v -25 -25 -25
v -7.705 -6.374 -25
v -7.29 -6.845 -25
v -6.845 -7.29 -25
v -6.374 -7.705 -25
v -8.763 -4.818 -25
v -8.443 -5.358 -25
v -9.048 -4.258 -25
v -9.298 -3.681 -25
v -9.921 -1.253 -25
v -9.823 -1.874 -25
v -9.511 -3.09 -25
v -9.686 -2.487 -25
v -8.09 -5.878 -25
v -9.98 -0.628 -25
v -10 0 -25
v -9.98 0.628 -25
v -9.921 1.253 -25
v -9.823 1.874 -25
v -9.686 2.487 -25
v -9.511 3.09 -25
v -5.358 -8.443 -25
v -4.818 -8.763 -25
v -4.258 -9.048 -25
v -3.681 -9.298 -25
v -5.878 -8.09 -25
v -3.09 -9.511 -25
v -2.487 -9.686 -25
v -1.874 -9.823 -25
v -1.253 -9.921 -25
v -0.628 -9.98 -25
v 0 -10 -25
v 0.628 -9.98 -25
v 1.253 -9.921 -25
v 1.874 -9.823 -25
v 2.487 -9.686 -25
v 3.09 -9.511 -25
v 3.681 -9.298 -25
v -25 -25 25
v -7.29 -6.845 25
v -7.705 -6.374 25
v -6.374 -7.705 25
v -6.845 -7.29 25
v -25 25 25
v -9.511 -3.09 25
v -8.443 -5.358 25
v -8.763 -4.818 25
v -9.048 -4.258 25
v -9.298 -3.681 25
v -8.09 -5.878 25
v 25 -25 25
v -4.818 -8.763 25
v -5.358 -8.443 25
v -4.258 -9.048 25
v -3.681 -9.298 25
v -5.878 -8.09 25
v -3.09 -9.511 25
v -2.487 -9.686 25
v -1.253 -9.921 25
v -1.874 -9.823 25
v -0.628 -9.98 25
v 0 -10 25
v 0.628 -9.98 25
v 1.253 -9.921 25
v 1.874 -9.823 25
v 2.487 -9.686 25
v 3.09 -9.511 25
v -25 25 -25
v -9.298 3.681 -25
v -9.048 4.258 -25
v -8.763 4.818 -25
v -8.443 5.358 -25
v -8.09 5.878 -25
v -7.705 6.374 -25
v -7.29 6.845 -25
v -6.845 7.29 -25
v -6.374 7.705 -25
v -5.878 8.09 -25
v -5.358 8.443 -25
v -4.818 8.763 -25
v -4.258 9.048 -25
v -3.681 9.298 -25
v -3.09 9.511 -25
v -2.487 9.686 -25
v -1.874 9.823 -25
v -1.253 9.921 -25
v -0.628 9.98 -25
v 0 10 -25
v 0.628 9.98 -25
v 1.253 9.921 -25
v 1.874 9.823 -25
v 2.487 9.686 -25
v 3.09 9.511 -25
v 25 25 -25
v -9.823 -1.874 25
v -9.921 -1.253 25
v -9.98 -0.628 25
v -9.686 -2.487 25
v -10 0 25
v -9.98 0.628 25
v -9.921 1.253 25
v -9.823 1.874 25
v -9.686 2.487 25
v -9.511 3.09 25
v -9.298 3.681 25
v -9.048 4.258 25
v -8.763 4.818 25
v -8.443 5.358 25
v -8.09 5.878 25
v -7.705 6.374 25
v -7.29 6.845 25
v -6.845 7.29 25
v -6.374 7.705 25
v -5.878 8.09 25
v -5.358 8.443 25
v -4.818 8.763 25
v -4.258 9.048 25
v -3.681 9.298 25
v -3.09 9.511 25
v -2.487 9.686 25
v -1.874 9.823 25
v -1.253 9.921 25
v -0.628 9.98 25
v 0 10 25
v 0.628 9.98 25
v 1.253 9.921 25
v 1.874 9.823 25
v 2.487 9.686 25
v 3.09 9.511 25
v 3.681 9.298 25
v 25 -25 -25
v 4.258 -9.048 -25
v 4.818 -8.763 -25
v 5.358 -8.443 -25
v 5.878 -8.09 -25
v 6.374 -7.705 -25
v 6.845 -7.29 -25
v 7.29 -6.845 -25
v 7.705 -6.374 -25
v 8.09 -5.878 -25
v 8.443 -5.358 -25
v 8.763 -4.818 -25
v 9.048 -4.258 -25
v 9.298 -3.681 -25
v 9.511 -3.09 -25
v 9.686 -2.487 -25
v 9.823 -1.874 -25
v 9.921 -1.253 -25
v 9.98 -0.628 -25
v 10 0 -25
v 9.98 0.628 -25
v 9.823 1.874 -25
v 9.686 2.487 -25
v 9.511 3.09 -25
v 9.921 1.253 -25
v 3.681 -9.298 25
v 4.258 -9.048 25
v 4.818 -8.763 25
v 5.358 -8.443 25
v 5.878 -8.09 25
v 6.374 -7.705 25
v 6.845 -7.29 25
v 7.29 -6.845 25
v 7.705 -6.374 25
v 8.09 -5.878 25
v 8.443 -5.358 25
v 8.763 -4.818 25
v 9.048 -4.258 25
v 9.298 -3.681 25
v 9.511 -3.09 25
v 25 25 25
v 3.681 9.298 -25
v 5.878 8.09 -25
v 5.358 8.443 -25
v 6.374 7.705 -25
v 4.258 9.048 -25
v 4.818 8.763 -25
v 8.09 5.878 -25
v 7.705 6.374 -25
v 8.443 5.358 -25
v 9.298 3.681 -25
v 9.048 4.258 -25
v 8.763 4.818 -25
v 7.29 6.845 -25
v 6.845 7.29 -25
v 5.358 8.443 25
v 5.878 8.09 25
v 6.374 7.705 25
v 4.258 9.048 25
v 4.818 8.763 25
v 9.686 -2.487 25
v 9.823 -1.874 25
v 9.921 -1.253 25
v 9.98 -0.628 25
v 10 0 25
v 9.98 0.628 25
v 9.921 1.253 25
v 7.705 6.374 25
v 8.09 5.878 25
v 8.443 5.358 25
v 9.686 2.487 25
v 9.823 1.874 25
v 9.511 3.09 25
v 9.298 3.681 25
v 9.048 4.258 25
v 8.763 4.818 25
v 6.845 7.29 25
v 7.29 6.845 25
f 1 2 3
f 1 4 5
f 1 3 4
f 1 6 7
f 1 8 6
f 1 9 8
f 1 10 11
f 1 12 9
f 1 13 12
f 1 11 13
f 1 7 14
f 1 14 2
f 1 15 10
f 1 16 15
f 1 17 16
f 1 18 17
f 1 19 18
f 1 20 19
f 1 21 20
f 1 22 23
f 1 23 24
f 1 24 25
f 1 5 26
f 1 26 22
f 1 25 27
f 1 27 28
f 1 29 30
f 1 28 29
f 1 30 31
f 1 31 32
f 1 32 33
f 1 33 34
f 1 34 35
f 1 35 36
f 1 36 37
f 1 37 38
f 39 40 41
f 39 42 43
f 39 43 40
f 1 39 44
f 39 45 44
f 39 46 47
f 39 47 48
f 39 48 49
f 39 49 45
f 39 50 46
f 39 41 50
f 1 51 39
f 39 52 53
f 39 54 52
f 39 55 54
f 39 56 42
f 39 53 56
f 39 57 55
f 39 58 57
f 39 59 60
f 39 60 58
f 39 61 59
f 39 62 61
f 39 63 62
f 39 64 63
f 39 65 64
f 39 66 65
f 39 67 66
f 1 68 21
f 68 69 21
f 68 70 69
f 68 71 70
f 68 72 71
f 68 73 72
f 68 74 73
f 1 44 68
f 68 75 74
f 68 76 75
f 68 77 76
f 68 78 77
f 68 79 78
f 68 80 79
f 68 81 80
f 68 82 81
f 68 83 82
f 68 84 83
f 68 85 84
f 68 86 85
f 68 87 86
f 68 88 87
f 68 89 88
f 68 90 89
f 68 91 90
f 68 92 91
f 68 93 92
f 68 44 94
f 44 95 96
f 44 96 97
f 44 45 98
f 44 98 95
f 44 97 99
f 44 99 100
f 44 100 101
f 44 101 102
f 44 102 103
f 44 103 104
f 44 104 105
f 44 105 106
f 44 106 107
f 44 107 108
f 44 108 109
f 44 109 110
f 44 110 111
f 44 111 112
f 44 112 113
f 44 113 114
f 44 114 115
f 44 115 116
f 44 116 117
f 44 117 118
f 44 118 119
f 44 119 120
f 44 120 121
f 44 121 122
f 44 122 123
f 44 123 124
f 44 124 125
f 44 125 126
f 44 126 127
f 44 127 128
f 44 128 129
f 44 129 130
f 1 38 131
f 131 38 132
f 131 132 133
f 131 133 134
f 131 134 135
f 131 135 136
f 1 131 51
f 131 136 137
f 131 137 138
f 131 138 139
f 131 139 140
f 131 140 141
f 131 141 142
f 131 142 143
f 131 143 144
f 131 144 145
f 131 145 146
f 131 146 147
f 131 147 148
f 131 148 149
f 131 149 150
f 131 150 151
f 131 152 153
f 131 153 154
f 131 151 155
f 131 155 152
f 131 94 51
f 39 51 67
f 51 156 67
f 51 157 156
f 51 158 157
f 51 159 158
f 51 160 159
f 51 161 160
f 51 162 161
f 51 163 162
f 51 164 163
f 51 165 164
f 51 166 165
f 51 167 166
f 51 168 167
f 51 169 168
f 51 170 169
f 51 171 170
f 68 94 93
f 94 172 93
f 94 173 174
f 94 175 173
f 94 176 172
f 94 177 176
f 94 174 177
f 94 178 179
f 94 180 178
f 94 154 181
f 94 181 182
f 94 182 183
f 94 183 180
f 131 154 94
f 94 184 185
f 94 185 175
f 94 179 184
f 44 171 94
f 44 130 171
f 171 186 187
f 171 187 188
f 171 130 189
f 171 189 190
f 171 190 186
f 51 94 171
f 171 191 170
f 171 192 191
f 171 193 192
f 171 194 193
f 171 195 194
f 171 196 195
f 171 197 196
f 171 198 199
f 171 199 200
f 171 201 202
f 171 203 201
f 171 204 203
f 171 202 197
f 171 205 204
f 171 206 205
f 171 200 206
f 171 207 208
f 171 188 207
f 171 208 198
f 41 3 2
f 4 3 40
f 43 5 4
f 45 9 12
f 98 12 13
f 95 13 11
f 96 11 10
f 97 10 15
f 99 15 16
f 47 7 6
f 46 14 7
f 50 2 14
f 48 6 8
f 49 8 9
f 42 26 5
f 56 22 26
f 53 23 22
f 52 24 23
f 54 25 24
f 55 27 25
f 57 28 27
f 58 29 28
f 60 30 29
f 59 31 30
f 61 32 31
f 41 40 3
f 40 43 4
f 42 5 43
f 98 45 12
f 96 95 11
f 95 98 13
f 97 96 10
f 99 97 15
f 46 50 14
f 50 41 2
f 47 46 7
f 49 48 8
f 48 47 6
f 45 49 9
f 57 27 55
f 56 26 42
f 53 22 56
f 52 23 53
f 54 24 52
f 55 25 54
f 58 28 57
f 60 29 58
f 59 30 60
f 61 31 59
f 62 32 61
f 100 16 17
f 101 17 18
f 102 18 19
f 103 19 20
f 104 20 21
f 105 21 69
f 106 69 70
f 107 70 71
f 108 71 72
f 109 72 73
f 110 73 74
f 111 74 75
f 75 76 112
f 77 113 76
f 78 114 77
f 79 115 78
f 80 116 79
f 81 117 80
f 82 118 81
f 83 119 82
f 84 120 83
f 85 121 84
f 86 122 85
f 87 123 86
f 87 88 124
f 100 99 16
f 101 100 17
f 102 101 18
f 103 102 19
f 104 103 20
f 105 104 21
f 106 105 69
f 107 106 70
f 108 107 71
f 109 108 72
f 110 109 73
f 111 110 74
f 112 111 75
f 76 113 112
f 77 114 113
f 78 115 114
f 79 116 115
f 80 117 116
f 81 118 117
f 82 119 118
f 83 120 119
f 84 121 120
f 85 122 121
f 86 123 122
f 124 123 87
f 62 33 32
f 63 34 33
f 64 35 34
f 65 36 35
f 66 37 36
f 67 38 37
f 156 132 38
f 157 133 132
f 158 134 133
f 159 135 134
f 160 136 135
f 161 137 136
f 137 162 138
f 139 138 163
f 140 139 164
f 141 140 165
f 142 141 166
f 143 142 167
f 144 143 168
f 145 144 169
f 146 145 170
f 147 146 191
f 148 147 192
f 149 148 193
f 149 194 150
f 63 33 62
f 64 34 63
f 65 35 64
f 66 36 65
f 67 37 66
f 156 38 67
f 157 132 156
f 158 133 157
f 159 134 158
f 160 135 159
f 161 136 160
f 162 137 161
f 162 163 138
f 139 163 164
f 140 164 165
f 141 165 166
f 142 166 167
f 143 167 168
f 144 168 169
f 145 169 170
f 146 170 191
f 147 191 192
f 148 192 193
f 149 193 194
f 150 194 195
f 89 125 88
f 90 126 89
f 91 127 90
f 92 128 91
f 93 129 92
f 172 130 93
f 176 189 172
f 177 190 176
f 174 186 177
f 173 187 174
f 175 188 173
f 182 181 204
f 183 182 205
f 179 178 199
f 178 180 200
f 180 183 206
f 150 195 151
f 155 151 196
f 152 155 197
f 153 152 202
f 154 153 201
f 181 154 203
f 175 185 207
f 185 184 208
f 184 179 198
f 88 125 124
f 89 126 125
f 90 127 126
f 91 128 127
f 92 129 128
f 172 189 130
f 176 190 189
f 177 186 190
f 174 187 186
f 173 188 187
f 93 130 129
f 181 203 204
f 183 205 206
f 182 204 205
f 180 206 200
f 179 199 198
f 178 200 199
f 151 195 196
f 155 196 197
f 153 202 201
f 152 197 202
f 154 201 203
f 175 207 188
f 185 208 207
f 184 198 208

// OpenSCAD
difference() {
  cube([50, 50, 50], center = true);
  cylinder(d = 20, h = 60, center = true, $fn = 100);
}
